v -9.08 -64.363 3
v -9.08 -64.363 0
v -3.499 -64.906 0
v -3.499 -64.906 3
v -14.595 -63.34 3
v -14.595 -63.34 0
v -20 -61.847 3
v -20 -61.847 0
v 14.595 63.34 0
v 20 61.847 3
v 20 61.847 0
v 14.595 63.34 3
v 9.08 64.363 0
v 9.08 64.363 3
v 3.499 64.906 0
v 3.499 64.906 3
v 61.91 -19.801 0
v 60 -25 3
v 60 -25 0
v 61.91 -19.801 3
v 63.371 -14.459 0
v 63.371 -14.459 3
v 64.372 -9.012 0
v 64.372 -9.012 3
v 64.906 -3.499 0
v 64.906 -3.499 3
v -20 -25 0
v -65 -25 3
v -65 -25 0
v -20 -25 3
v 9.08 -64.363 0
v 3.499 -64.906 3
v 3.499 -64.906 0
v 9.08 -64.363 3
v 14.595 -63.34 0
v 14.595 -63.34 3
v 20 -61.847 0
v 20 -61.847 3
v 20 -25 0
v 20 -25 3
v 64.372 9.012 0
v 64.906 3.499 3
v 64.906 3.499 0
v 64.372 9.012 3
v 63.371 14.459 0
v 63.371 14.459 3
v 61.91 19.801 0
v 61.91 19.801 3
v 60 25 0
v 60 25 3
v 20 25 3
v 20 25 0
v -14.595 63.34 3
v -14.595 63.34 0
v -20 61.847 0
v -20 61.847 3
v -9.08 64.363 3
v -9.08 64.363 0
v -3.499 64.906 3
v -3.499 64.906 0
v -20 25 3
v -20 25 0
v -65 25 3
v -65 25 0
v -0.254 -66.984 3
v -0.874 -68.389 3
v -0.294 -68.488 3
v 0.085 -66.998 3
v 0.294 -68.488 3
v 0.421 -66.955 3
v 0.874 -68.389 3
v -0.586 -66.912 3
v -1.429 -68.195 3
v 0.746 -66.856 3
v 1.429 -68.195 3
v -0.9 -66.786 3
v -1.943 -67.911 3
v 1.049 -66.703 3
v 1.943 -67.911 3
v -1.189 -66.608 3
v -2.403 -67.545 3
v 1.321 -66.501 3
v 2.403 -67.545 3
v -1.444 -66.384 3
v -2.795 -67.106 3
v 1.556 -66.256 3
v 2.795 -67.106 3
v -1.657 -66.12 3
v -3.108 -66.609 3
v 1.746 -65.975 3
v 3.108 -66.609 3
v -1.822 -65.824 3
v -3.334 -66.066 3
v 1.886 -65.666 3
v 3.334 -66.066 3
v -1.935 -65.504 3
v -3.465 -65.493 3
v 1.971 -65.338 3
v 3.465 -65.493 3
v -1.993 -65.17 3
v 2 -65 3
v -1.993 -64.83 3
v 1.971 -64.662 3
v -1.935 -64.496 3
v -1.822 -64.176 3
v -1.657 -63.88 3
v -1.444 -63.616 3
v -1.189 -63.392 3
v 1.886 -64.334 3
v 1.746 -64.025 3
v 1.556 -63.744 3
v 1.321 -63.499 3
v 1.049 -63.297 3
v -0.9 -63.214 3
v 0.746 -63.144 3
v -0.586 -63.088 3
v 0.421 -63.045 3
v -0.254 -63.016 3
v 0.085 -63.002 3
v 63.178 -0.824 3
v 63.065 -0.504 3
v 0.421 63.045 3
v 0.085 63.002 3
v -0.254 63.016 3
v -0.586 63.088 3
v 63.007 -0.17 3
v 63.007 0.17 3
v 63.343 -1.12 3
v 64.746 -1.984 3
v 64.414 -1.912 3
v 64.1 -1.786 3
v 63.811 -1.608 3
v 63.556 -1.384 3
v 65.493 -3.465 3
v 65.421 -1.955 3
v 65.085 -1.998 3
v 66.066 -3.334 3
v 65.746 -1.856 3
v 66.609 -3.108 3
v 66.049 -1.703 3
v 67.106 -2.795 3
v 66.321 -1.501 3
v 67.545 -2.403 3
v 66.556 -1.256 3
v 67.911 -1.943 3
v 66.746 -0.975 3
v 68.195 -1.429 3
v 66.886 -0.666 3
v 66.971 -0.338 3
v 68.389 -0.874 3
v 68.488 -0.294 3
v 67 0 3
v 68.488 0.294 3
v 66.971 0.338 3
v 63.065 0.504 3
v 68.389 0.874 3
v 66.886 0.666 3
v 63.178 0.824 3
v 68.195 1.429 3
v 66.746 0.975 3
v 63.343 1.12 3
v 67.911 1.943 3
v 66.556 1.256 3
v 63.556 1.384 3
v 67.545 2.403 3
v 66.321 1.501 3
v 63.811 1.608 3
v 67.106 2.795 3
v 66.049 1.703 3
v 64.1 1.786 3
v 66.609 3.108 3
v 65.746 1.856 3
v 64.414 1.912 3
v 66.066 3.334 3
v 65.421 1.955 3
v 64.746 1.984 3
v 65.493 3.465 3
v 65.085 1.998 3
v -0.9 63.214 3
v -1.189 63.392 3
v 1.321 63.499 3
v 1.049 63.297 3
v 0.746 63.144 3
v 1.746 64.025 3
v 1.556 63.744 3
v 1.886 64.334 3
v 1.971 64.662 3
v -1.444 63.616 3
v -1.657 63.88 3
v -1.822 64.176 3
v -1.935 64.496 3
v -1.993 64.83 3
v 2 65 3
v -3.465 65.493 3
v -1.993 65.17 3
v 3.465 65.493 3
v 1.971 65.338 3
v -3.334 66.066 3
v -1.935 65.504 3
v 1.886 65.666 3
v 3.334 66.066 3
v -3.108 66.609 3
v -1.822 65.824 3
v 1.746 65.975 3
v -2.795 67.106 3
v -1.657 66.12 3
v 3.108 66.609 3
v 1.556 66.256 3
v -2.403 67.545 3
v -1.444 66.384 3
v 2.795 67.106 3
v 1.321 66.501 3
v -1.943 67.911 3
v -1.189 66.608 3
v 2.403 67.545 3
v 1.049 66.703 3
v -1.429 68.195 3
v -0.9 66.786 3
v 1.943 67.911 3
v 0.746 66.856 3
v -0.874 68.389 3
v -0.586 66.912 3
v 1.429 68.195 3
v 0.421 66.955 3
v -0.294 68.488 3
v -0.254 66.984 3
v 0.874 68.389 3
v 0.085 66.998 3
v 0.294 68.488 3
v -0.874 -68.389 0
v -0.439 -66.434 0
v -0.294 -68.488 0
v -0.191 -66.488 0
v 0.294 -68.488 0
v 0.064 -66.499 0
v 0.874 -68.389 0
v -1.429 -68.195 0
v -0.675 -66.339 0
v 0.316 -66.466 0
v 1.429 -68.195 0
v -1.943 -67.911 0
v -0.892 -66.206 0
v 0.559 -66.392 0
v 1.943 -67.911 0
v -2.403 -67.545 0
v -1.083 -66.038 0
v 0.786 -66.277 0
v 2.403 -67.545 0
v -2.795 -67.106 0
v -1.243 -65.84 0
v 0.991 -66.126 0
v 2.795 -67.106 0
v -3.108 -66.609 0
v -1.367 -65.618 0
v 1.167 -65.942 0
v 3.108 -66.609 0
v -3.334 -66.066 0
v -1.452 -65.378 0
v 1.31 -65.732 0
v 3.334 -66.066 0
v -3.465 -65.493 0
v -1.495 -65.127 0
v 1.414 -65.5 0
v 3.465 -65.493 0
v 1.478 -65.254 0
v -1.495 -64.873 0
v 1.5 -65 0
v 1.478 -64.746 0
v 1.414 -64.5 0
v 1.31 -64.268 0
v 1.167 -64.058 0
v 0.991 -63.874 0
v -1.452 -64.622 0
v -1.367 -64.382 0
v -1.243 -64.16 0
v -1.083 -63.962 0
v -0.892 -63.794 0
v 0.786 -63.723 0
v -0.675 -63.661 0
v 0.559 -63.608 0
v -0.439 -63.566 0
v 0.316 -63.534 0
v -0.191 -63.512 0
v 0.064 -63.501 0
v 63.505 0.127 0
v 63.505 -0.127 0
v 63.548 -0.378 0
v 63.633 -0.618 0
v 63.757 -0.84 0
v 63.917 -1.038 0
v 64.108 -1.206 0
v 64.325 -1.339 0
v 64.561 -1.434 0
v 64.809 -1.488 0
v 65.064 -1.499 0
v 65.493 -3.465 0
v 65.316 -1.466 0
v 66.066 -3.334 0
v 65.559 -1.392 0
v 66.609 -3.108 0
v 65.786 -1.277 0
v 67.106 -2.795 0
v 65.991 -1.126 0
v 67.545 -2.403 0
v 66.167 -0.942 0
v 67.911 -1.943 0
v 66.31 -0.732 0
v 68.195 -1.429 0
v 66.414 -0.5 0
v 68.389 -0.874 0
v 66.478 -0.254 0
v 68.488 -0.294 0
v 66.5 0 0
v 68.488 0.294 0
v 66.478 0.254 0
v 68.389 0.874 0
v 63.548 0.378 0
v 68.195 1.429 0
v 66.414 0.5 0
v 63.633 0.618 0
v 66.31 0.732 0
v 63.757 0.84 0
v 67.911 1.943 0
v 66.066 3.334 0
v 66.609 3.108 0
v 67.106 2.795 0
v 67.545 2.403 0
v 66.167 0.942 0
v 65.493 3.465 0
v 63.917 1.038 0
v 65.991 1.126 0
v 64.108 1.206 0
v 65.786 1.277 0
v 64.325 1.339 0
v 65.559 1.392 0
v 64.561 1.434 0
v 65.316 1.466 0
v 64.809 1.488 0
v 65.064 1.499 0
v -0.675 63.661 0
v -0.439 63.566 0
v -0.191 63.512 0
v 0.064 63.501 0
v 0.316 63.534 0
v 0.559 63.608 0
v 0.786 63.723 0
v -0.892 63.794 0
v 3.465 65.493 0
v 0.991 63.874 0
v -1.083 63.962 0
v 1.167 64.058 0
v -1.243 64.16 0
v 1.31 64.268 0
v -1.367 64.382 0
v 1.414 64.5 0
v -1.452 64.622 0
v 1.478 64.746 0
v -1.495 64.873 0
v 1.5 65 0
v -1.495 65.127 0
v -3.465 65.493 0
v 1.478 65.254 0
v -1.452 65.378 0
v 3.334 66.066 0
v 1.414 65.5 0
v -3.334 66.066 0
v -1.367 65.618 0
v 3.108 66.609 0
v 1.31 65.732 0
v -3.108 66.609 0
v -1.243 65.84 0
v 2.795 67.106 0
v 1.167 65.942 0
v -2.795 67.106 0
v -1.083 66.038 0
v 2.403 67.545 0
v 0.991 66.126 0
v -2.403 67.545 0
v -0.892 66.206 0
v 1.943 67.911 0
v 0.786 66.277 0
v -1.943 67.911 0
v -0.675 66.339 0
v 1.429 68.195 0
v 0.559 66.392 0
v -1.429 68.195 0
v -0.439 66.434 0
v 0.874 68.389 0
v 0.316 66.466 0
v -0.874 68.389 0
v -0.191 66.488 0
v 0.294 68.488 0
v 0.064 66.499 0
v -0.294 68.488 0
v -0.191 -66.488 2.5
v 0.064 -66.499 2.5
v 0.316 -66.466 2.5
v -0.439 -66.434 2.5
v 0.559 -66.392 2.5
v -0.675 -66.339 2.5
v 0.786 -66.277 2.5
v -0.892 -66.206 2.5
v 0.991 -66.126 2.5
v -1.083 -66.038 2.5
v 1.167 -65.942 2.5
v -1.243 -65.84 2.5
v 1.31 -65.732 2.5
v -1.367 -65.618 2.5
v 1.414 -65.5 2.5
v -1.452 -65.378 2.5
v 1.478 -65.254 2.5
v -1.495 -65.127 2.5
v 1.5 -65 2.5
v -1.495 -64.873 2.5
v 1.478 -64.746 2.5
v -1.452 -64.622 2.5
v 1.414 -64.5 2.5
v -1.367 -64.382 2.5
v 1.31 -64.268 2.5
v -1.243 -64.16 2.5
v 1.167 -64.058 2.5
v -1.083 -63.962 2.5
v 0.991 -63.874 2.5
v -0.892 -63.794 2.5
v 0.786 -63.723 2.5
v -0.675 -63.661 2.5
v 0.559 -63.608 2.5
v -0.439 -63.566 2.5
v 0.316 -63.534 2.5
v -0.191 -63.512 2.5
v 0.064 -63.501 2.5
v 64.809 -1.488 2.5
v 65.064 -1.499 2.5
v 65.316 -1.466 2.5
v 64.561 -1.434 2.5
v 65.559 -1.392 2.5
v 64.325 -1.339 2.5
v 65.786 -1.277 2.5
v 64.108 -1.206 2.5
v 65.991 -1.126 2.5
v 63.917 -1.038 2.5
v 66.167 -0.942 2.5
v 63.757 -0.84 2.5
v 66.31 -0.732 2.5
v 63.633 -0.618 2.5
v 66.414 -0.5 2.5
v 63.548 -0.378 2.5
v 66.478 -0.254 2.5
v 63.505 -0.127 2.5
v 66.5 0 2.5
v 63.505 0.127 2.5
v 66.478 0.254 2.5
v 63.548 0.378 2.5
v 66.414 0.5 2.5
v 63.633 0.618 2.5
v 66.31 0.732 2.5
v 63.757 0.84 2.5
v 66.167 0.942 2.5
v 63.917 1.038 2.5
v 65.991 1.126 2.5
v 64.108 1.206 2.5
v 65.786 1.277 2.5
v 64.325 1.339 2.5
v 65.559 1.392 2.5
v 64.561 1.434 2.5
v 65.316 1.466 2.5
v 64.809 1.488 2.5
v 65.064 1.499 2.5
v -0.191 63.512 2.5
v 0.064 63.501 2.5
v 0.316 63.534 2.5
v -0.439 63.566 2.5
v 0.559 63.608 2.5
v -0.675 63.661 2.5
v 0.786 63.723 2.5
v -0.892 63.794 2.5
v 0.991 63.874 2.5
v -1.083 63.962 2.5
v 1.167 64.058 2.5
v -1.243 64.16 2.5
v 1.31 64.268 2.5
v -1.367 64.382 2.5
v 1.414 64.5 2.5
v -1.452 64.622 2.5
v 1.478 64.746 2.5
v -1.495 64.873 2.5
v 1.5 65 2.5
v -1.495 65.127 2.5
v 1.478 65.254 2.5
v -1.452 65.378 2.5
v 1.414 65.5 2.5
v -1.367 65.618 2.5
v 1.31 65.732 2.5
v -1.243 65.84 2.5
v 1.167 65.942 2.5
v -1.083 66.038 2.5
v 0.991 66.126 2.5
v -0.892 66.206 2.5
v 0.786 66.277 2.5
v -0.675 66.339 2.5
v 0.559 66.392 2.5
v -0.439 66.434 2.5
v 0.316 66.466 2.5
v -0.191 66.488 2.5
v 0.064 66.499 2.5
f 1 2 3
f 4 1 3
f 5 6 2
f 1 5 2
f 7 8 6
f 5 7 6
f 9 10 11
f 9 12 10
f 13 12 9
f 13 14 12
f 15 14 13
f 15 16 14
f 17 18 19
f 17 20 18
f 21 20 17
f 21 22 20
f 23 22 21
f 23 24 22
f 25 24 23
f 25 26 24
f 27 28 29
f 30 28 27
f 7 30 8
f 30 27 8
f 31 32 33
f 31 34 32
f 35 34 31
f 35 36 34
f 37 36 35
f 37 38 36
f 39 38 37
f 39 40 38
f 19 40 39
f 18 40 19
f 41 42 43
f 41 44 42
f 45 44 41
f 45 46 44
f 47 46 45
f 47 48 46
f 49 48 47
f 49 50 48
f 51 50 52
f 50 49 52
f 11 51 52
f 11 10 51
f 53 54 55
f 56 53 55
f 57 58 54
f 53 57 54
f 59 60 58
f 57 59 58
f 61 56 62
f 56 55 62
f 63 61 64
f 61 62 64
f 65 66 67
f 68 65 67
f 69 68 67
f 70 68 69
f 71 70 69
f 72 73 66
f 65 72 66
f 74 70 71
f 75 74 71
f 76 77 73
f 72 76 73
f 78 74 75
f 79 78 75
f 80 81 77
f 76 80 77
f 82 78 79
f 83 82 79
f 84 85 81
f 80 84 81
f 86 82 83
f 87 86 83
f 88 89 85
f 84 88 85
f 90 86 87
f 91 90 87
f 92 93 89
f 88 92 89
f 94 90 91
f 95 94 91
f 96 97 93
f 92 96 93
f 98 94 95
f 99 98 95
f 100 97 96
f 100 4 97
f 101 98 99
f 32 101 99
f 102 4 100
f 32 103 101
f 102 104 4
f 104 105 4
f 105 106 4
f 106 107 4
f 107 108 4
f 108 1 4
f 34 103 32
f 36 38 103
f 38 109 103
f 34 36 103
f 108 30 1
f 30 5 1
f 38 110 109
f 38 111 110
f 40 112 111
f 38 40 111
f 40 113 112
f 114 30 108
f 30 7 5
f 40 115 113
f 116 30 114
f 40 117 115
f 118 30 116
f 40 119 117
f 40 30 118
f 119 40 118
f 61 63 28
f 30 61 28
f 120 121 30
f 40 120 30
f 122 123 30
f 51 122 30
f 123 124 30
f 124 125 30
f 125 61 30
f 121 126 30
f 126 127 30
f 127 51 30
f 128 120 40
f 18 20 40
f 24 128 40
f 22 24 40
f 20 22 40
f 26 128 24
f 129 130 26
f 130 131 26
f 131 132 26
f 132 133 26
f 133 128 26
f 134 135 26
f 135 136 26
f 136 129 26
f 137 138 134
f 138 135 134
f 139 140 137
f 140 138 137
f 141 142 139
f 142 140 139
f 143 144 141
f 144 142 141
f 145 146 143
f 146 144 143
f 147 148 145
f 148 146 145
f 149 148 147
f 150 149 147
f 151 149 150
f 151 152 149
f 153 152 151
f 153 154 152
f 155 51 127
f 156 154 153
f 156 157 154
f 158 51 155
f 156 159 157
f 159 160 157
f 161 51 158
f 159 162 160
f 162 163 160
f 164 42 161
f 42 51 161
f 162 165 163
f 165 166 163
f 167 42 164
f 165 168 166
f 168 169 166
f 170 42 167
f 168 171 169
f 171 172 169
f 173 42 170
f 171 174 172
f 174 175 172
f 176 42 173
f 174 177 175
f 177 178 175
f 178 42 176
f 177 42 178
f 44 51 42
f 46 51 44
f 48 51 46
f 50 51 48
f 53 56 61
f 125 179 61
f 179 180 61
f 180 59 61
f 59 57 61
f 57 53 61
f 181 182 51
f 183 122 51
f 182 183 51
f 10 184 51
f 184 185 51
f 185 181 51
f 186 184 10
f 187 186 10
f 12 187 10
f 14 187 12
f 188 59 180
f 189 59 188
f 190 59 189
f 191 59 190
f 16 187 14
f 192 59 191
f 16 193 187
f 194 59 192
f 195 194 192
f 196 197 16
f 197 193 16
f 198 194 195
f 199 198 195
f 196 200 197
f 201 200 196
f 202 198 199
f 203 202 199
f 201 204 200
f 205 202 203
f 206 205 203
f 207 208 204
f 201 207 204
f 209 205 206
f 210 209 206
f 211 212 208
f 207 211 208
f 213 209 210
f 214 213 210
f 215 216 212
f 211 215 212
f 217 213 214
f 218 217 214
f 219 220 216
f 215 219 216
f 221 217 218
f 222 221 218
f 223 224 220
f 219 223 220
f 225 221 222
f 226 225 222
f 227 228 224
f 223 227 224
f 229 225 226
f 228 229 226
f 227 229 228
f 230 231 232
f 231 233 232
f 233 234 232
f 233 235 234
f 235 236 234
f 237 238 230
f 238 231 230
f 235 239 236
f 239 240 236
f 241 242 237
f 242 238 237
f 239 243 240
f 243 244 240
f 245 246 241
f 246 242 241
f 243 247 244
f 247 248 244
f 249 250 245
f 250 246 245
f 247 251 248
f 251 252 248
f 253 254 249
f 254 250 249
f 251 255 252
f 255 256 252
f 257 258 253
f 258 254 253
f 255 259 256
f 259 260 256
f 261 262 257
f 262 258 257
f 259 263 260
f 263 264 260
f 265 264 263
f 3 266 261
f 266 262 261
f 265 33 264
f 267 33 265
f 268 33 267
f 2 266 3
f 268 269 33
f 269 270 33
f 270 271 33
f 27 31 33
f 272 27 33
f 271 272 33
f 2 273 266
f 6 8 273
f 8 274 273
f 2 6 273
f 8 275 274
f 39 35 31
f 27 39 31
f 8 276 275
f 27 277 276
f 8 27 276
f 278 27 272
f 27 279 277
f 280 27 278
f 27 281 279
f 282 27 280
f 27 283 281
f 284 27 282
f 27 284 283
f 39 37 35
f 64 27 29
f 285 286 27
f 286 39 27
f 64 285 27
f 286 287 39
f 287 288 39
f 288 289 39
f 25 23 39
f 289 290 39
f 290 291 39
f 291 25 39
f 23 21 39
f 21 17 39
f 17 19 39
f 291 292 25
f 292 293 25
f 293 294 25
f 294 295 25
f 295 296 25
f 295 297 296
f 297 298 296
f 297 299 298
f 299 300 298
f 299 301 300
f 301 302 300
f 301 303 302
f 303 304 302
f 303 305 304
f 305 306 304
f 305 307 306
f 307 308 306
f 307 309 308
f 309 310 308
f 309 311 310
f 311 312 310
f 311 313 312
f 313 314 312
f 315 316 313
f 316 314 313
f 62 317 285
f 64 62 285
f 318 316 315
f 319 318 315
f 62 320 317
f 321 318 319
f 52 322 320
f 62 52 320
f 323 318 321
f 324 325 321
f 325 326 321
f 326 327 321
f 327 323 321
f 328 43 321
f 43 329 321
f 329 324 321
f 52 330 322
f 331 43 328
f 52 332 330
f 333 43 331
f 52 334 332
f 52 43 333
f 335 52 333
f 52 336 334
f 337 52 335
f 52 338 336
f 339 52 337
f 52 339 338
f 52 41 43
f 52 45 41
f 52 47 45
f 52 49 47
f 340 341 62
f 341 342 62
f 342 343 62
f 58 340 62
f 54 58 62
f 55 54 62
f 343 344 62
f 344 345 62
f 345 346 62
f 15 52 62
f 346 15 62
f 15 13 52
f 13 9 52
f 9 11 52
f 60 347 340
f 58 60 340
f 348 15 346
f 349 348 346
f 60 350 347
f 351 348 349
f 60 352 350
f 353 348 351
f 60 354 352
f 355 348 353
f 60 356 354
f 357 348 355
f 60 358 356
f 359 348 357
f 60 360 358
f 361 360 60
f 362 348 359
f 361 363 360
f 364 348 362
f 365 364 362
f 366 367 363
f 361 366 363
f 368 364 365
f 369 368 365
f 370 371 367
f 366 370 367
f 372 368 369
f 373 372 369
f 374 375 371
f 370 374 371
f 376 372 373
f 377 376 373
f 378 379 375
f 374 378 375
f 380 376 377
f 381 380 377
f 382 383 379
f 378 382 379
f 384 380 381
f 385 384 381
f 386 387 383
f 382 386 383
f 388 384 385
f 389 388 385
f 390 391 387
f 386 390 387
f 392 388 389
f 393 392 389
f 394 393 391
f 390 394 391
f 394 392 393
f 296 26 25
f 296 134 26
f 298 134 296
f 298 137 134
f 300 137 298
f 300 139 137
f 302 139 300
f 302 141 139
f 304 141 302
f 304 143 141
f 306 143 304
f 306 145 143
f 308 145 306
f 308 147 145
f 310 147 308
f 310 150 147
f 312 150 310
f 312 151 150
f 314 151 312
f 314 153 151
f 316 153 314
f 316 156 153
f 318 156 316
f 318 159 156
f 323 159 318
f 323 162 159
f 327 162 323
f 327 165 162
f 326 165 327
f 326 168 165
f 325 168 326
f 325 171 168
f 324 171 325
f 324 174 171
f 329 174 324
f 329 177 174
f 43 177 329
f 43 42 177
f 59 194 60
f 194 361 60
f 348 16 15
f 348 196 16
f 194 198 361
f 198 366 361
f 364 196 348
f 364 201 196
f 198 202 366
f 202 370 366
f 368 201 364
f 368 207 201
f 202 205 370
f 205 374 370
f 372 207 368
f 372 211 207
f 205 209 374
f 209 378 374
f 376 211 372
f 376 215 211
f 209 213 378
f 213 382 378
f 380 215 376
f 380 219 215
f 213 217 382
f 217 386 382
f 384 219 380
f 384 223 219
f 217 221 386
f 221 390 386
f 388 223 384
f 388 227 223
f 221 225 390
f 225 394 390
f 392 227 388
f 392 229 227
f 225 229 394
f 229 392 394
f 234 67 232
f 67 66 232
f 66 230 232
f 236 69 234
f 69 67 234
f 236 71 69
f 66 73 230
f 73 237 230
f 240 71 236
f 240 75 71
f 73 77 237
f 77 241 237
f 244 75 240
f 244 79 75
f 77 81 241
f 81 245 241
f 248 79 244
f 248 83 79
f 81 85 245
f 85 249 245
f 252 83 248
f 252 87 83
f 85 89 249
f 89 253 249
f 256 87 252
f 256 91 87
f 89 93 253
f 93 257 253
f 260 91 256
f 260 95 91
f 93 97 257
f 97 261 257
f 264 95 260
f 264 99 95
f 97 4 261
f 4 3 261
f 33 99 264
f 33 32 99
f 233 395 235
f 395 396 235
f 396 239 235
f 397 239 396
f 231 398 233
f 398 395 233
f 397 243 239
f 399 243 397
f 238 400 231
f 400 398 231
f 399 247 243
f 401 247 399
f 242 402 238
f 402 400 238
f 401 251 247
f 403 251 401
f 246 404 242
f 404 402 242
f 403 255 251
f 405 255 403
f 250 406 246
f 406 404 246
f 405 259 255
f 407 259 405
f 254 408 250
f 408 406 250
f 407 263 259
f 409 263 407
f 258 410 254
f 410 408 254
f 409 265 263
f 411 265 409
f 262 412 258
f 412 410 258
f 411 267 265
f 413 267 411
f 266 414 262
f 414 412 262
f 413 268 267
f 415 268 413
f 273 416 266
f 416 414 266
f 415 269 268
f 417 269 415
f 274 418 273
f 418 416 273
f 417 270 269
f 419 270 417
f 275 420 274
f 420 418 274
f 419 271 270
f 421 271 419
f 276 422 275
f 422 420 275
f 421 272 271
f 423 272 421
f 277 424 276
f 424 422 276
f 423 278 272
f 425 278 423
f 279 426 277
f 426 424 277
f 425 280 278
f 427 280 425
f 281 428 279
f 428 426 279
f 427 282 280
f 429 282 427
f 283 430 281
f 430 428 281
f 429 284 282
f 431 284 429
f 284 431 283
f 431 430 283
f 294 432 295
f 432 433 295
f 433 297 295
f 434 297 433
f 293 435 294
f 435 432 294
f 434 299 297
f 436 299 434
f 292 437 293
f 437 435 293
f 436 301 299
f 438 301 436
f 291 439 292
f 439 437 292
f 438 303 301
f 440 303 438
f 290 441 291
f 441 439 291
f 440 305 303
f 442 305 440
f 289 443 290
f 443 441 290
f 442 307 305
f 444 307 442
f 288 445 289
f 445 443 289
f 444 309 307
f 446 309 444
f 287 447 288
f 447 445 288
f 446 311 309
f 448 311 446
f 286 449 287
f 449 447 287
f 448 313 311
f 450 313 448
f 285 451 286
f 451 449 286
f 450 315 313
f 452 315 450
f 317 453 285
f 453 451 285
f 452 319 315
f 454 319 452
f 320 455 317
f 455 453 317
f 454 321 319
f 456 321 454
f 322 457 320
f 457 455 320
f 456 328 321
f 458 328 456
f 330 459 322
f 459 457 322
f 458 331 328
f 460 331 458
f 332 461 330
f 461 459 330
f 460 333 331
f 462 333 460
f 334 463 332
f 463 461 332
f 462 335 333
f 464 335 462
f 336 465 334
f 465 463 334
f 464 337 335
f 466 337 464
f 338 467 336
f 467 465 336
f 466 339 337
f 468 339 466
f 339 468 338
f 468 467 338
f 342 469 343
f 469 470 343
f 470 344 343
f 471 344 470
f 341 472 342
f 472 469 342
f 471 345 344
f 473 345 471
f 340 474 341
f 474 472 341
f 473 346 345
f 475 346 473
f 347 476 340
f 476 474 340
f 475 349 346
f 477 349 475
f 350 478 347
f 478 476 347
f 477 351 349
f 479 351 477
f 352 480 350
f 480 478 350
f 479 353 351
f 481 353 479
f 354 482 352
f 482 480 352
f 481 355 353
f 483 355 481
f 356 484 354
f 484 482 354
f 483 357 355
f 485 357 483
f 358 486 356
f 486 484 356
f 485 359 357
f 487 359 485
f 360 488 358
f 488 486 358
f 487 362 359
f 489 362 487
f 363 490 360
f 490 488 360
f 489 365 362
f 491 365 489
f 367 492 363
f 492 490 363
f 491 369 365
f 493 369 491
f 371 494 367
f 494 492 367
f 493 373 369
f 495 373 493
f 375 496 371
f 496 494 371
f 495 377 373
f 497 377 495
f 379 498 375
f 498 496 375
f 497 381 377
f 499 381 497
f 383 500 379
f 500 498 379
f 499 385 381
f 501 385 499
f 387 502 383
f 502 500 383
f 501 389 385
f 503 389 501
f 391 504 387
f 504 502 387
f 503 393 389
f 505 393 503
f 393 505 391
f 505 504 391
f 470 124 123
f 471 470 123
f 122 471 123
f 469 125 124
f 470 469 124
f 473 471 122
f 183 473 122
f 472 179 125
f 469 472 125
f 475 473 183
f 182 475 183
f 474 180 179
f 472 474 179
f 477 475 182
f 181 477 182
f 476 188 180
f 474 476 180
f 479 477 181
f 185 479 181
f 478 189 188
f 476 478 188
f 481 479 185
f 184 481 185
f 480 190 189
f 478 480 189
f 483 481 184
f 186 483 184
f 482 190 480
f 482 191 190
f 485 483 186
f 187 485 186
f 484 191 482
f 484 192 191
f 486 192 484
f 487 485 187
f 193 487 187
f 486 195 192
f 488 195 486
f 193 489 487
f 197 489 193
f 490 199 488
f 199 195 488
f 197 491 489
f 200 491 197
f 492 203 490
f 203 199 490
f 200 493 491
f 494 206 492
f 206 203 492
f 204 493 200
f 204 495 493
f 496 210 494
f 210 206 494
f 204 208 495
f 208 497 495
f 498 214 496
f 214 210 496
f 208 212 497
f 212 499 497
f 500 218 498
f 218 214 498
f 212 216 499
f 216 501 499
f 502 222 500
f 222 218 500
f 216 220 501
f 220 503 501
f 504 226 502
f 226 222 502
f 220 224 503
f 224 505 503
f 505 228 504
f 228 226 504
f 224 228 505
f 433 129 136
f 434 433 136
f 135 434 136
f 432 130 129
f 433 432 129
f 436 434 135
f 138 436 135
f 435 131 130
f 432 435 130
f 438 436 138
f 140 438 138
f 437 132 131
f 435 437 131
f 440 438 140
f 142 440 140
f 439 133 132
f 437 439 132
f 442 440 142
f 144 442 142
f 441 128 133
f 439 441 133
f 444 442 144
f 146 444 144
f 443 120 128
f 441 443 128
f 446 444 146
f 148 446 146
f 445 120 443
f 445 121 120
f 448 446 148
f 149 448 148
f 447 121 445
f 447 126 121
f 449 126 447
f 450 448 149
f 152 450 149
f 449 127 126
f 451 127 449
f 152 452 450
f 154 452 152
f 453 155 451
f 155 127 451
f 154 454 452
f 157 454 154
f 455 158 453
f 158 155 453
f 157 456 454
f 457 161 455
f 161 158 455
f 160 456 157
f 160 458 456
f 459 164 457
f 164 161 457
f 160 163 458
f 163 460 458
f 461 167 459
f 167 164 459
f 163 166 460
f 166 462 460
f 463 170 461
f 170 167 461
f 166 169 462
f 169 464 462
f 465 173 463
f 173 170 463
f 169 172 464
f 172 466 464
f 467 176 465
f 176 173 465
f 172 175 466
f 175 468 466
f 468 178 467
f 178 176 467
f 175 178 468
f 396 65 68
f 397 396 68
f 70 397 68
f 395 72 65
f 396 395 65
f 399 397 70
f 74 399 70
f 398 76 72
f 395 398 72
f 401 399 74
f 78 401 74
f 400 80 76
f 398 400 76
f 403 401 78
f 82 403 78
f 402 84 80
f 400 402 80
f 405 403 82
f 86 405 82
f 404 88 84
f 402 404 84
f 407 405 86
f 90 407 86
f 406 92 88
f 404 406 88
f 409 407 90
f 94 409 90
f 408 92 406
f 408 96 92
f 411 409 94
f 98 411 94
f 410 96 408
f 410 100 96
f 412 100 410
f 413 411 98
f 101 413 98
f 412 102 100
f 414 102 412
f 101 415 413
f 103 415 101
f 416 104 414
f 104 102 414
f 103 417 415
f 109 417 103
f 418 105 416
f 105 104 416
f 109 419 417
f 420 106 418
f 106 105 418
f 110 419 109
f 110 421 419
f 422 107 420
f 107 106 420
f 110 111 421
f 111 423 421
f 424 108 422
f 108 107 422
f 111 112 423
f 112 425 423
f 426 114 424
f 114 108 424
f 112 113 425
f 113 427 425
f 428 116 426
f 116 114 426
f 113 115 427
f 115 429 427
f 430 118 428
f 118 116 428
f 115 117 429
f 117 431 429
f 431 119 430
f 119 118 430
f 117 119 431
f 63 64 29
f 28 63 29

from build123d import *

# Parameters (mm, degrees)
EXTRUDE_1_DEPTH     = 3
SKETCH_2_R          = 3.5
EXTRUDE_2_DEPTH     = 3
SKETCH_3_R          = 1.5
CUT_EXTRUDE_1_DEPTH = 3
CHAMFER_1_SIZE      = 0.5
EXTRUDE_START       = -3
EXTRUDE_4_DEPTH     = 3


with BuildPart() as part:
    # 草图1 → 凸台-拉伸1 (new body)
    with BuildSketch(Plane.XY):
        with BuildLine():
            Line((20, -25), (20, -61.846584384))
            ThreePointArc((20, -61.846584384), (0, -65), (-20, -61.846584384))
            Line((-20, -61.846584384), (-20, -25))
            Line((-20, -25), (-60, -25))
            ThreePointArc((-60, -25), (-65, 0), (-60, 25))
            Line((-60, 25), (-20, 25))
            Line((-20, 25), (-20, 61.846584384))
            ThreePointArc((-20, 61.846584384), (0, 65), (20, 61.846584384))
            Line((20, 61.846584384), (20, 25))
            Line((20, 25), (60, 25))
            ThreePointArc((60, 25), (65, 0), (60, -25))
            Line((60, -25), (20, -25))
        make_face()
    extrude(amount=EXTRUDE_1_DEPTH)

    # 草图2 → 凸台-拉伸2 (add)
    with BuildSketch(Plane.XY.offset(3)):
        with Locations((65, 0)):
            Circle(SKETCH_2_R)
        with Locations((0, 65)):
            Circle(SKETCH_2_R)
        with Locations((0, -65)):
            Circle(SKETCH_2_R)
    extrude(amount=-EXTRUDE_2_DEPTH)

    # 草图3 → 切除-拉伸1 (cut)
    with BuildSketch(Plane.XY.offset(3)):
        with Locations((0, 65)):
            Circle(SKETCH_3_R)
        with Locations((65, 0)):
            Circle(SKETCH_3_R)
        with Locations((0, -65)):
            Circle(SKETCH_3_R)
    extrude(amount=-CUT_EXTRUDE_1_DEPTH, mode=Mode.SUBTRACT)

    # 倒角1
    chamfer_1_edges = [part.edges().sort_by_distance(p)[0] for p in [
        (-1.5, 65, 3),
        (63.5, 0, 3),
        (-1.5, -65, 3),
    ]]
    chamfer(chamfer_1_edges, length=CHAMFER_1_SIZE)

    # 草图4 → 凸台-拉伸4 (add)
    with BuildSketch(Plane.XY.offset(3).offset(EXTRUDE_START)):
        with BuildLine():
            ThreePointArc((-60, -25), (-63.73774392, -12.747548784), (-65, 0))
            Line((-65, 0), (-65, -25))
            Line((-65, -25), (-60, -25))
        make_face()
        with BuildLine():
            ThreePointArc((-65, 0), (-63.73774392, 12.747548784), (-60, 25))
            Line((-60, 25), (-65, 25))
            Line((-65, 25), (-65, 0))
        make_face()
    extrude(amount=EXTRUDE_4_DEPTH)


solid = part.part
